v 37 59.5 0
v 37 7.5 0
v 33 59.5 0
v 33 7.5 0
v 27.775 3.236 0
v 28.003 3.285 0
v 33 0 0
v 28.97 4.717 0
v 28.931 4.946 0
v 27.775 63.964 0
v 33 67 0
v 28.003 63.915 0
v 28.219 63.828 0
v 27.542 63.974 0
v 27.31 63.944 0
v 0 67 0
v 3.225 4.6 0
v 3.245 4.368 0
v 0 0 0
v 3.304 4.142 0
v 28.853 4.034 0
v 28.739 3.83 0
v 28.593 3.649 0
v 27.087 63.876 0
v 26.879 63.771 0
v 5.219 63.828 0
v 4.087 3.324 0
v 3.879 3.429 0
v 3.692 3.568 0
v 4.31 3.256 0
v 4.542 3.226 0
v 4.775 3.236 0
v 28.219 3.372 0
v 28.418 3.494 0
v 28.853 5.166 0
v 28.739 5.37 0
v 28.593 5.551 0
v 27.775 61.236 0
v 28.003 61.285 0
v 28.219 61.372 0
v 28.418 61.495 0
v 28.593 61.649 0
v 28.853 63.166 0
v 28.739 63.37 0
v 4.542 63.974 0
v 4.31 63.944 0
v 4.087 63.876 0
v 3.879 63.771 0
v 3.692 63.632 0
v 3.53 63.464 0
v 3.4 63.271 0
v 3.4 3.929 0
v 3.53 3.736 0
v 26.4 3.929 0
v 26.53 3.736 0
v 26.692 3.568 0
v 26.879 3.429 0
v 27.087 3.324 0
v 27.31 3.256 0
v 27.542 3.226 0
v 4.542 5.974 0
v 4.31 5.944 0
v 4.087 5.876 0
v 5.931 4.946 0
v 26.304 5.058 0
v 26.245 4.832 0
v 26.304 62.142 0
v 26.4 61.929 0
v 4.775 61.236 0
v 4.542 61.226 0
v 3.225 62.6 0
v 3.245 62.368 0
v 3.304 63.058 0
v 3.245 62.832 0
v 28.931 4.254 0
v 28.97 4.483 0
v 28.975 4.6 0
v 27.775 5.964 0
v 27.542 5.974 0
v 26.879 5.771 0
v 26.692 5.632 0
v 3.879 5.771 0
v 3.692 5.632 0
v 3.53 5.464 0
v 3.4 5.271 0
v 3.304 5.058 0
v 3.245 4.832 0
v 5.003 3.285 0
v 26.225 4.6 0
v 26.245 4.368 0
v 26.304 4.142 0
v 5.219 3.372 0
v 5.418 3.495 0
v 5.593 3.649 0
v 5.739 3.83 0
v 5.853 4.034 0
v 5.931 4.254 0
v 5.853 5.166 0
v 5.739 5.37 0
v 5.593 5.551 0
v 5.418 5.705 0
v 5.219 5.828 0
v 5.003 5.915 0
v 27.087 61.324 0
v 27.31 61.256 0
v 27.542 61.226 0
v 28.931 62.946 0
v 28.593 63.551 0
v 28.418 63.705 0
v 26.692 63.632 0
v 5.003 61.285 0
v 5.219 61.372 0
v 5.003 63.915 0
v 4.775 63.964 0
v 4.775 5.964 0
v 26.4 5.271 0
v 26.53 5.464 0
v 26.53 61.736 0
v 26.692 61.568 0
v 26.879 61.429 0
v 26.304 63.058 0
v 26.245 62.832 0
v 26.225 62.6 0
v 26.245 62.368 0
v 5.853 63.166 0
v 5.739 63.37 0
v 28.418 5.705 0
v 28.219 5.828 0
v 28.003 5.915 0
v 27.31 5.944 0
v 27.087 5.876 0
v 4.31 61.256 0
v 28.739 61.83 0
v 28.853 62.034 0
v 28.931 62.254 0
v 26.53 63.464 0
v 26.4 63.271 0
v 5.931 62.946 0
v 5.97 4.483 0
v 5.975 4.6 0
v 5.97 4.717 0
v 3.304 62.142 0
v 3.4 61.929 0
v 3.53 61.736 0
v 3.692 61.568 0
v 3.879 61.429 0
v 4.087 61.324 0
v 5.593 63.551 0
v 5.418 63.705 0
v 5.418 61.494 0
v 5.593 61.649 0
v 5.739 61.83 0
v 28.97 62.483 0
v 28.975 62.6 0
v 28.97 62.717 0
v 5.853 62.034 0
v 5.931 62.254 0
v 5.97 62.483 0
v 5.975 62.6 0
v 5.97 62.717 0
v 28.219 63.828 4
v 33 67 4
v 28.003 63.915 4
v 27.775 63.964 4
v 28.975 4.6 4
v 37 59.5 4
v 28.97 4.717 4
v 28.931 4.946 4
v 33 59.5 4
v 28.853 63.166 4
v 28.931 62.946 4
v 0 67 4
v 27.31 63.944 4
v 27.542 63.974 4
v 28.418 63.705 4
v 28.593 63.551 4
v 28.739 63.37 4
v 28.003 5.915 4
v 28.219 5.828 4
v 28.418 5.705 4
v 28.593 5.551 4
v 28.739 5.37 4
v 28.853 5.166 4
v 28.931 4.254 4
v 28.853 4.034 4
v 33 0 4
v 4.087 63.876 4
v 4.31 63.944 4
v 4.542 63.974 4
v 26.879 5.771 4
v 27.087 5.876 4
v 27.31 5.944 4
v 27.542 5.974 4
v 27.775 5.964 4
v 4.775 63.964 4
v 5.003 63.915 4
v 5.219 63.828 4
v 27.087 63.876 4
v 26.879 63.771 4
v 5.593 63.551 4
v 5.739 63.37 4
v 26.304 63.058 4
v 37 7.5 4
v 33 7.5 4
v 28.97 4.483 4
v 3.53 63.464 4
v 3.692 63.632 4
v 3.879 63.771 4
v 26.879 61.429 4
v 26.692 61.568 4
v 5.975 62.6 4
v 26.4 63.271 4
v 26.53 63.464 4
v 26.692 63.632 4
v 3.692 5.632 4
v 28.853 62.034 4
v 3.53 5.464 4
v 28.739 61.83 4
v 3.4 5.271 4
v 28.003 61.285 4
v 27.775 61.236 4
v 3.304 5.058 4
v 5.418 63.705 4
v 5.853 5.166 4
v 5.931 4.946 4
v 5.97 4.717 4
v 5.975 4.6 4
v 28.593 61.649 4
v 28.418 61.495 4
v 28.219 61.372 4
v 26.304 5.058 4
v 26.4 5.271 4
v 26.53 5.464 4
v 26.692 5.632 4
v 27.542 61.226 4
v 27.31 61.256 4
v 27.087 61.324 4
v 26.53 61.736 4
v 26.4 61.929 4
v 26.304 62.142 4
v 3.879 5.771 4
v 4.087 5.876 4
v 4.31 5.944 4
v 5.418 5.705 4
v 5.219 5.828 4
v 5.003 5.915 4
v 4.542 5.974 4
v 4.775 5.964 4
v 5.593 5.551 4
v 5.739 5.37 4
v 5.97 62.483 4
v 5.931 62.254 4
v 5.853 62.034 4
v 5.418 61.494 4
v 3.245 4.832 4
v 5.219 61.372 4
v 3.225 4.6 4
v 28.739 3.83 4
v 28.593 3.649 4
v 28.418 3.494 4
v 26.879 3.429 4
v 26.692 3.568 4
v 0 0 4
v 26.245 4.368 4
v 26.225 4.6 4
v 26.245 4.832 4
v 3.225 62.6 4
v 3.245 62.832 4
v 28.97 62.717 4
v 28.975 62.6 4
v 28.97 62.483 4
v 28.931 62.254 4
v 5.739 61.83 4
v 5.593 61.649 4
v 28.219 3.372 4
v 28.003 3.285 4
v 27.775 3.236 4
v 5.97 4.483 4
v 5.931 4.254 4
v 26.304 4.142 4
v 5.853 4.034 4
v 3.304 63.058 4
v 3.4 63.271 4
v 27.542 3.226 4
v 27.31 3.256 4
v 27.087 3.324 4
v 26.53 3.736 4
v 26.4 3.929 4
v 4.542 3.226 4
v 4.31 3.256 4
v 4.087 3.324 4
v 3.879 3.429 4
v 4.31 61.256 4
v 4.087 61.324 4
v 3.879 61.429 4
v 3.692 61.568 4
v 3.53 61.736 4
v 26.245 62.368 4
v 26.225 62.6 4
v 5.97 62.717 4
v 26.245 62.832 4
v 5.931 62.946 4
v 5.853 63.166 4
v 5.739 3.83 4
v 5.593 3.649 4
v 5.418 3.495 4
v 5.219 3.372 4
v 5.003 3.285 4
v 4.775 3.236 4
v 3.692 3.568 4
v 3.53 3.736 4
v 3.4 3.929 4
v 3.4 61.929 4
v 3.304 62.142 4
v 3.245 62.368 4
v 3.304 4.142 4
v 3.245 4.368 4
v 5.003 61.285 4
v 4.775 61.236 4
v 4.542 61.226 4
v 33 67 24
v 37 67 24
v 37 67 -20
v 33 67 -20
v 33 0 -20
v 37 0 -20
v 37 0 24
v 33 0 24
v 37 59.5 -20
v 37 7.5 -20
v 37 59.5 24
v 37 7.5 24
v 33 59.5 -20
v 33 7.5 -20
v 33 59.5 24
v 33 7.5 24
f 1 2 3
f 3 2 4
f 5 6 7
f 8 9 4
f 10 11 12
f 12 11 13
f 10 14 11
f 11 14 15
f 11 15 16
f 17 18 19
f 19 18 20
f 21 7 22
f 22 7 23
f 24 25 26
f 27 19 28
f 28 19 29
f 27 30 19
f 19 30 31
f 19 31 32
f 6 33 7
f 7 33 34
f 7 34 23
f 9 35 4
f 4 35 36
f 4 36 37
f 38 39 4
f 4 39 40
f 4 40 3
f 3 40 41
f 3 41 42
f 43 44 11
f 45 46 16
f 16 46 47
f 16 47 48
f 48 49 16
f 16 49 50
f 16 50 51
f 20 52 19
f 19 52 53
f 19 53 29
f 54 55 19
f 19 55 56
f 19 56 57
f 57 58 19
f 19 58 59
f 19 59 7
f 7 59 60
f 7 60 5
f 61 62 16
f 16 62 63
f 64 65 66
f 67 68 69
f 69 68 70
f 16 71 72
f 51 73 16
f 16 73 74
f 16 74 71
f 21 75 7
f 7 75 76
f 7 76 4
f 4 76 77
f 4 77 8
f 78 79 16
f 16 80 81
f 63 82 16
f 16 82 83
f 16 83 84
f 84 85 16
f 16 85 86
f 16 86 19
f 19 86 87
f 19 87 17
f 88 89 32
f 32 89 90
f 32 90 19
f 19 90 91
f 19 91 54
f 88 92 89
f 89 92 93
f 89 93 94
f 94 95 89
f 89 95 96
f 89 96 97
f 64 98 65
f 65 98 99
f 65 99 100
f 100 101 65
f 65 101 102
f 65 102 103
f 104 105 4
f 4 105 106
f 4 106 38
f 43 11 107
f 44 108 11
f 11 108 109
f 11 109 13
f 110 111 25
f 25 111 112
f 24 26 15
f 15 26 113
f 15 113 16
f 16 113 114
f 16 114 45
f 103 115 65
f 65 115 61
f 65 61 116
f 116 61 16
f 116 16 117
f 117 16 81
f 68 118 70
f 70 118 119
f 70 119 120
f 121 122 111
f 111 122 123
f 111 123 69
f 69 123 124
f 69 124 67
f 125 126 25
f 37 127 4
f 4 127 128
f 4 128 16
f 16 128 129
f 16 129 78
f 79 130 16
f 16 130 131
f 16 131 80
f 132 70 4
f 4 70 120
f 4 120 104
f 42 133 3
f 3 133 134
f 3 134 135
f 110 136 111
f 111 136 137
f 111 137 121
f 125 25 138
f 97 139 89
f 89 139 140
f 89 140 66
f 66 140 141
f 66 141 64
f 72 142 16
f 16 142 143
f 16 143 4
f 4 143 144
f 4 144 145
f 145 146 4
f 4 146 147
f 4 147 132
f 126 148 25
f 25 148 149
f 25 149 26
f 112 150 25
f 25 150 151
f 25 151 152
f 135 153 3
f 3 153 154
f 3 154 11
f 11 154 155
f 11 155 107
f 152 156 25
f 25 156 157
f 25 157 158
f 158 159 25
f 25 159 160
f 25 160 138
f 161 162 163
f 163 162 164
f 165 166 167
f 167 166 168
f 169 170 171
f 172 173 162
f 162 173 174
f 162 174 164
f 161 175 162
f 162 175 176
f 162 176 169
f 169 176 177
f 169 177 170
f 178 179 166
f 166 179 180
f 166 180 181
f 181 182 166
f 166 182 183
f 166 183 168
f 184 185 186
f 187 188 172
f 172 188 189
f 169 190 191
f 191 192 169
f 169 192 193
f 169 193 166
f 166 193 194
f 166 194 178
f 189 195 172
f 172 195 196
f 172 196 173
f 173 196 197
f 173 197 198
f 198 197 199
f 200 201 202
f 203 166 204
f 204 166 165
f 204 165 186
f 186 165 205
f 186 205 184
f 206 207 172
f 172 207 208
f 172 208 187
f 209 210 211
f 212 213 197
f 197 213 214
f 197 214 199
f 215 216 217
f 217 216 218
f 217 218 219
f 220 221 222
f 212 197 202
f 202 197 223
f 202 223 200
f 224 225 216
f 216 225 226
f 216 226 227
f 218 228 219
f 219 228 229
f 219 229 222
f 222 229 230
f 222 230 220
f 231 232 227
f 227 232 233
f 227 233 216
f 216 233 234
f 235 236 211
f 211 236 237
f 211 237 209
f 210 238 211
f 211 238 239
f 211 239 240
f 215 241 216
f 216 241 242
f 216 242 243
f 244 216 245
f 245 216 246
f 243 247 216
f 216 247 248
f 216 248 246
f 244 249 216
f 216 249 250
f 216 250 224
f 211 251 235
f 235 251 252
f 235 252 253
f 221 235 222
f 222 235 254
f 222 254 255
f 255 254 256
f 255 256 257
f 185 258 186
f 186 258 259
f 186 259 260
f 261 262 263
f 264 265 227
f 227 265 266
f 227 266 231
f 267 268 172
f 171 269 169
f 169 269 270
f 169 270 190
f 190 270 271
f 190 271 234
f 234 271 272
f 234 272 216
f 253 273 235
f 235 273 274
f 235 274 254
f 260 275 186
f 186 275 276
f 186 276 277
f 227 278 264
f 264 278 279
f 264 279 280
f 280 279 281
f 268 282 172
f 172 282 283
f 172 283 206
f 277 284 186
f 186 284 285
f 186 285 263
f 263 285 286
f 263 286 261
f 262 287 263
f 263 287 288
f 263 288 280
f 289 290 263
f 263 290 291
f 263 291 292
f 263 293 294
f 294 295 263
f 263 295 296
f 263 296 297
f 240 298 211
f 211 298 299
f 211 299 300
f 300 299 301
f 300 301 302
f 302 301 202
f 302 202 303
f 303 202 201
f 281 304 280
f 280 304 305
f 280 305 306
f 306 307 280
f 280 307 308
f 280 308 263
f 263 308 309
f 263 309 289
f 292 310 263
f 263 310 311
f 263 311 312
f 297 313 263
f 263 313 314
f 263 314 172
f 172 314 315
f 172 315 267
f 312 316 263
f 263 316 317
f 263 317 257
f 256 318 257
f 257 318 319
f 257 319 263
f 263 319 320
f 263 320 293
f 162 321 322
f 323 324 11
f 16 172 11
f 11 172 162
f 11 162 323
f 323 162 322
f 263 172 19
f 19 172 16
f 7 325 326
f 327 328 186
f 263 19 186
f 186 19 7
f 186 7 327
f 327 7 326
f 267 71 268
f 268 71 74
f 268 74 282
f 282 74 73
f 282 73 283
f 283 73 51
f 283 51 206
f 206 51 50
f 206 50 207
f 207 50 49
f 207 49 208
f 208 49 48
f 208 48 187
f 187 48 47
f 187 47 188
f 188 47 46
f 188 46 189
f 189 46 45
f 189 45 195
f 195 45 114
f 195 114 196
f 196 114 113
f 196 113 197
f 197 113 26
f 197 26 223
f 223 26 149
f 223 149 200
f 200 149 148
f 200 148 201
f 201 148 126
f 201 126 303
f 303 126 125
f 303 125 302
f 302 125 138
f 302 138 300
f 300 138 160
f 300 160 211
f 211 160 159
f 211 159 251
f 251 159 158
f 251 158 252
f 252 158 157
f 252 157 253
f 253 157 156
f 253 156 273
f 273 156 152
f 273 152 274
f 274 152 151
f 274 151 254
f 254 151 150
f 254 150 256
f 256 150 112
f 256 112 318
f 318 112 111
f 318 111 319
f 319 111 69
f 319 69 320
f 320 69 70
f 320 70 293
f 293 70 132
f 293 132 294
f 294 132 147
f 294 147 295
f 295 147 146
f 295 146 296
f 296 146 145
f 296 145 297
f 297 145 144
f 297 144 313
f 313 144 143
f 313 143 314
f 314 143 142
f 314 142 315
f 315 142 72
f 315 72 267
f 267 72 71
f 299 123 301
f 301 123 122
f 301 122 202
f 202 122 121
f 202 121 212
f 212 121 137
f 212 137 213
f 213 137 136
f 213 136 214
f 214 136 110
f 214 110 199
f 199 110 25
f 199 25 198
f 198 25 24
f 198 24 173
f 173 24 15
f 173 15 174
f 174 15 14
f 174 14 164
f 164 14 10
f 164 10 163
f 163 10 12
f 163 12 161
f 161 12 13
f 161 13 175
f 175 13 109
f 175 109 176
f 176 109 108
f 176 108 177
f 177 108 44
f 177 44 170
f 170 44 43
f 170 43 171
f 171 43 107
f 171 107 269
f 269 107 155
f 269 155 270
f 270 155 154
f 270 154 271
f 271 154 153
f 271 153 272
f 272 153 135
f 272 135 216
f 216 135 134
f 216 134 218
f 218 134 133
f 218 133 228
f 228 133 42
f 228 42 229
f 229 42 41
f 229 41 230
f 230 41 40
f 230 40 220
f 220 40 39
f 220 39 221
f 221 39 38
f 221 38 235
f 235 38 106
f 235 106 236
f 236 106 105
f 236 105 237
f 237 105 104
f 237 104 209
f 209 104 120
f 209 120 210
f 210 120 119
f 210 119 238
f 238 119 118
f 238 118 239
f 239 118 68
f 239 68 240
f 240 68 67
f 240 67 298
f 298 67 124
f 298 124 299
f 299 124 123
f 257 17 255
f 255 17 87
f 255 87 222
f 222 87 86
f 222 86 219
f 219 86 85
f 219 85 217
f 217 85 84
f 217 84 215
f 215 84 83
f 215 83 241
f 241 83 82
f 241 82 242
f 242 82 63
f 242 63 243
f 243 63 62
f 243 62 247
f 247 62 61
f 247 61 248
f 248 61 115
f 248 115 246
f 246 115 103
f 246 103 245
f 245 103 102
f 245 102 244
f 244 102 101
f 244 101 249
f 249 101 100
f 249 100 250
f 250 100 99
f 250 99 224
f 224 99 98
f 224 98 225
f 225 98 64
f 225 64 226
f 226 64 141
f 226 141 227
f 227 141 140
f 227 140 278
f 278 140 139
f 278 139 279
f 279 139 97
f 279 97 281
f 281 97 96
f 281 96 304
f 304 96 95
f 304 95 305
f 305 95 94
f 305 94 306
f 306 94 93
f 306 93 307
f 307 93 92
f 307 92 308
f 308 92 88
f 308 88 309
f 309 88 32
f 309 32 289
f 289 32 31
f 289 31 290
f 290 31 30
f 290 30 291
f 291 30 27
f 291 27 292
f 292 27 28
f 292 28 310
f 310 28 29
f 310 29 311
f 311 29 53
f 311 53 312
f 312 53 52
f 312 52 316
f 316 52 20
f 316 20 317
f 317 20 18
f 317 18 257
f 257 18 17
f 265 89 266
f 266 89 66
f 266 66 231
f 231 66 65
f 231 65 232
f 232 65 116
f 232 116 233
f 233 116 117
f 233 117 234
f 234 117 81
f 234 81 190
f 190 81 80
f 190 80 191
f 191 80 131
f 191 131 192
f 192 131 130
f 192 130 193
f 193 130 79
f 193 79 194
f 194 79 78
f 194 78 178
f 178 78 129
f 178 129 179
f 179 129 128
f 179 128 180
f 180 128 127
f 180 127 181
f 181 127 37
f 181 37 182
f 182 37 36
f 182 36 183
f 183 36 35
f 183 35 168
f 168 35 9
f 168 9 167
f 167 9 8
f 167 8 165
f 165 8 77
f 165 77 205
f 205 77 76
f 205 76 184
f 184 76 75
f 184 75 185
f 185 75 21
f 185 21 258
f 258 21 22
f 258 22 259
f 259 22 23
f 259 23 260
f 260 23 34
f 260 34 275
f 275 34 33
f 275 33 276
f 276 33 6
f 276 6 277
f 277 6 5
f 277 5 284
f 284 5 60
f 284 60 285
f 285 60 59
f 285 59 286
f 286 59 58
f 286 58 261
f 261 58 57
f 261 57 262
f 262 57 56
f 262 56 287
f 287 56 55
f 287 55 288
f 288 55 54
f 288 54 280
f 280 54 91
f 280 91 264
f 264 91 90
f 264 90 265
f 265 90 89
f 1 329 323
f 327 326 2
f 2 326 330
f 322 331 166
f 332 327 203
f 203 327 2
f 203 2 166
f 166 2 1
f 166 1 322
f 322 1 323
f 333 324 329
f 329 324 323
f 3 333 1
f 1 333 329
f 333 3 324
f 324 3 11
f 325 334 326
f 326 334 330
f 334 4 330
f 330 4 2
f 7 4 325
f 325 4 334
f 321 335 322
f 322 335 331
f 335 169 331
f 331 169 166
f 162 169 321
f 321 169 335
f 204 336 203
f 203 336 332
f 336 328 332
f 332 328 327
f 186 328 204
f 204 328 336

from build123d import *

# Parameters (mm, degrees)
SZKIC2_W                    = 32
SZKIC2_H                    = 67
SZKIC2_R                    = 1.375000051
SZKIC2_R_2                  = 1.375001066
SZKIC2_R_3                  = 1.375000054
SZKIC2_R_4                  = 1.374997602
SZKIC2_W_2                  = 5
DODANIE_WYCI_GNI_CIE1_DEPTH = 4
SZKIC7_W                    = 20
SZKIC7_H                    = 7.5
DODANIE_WYCI_GNI_CIE2_DEPTH = 4


with BuildPart() as part:
    # Szkic2 → Dodanie-wyciągnięcie1 (new body)
    # profile 1 of 2: a face of its own
    with BuildSketch(Plane.XY):
        with Locations((16, 33.5)):
            Rectangle(SZKIC2_W, SZKIC2_H)
        with Locations((4.59999689, 4.59999658)):
            Circle(SZKIC2_R, mode=Mode.SUBTRACT)
        with Locations((27.600003502, 4.59999658)):
            Circle(SZKIC2_R_2, mode=Mode.SUBTRACT)
        with Locations((4.600005213, 62.599996076)):
            Circle(SZKIC2_R_3, mode=Mode.SUBTRACT)
        with Locations((27.600003502, 62.599996076)):
            Circle(SZKIC2_R_4, mode=Mode.SUBTRACT)
    # profile 2 of 2: a face of its own
    with BuildSketch(Plane.XY):
        with Locations((34.5, 33.5)):
            Rectangle(SZKIC2_W_2, SZKIC2_H)
    extrude(amount=DODANIE_WYCI_GNI_CIE1_DEPTH)

    # Szkic7 → Dodanie-wyciągnięcie2 (add)
    with BuildSketch(Plane(origin=(37, 0, 0), x_dir=(0, 0, -1), z_dir=(1, 0, 0))):
        with Locations((-14, 3.75)):
            Rectangle(SZKIC7_W, SZKIC7_H)
        with Locations((10, 3.75)):
            Rectangle(SZKIC7_W, SZKIC7_H)
        with Locations((-14, 63.25)):
            Rectangle(SZKIC7_W, SZKIC7_H)
        with Locations((10, 63.25)):
            Rectangle(SZKIC7_W, SZKIC7_H)
    extrude(amount=-DODANIE_WYCI_GNI_CIE2_DEPTH)


solid = part.part
